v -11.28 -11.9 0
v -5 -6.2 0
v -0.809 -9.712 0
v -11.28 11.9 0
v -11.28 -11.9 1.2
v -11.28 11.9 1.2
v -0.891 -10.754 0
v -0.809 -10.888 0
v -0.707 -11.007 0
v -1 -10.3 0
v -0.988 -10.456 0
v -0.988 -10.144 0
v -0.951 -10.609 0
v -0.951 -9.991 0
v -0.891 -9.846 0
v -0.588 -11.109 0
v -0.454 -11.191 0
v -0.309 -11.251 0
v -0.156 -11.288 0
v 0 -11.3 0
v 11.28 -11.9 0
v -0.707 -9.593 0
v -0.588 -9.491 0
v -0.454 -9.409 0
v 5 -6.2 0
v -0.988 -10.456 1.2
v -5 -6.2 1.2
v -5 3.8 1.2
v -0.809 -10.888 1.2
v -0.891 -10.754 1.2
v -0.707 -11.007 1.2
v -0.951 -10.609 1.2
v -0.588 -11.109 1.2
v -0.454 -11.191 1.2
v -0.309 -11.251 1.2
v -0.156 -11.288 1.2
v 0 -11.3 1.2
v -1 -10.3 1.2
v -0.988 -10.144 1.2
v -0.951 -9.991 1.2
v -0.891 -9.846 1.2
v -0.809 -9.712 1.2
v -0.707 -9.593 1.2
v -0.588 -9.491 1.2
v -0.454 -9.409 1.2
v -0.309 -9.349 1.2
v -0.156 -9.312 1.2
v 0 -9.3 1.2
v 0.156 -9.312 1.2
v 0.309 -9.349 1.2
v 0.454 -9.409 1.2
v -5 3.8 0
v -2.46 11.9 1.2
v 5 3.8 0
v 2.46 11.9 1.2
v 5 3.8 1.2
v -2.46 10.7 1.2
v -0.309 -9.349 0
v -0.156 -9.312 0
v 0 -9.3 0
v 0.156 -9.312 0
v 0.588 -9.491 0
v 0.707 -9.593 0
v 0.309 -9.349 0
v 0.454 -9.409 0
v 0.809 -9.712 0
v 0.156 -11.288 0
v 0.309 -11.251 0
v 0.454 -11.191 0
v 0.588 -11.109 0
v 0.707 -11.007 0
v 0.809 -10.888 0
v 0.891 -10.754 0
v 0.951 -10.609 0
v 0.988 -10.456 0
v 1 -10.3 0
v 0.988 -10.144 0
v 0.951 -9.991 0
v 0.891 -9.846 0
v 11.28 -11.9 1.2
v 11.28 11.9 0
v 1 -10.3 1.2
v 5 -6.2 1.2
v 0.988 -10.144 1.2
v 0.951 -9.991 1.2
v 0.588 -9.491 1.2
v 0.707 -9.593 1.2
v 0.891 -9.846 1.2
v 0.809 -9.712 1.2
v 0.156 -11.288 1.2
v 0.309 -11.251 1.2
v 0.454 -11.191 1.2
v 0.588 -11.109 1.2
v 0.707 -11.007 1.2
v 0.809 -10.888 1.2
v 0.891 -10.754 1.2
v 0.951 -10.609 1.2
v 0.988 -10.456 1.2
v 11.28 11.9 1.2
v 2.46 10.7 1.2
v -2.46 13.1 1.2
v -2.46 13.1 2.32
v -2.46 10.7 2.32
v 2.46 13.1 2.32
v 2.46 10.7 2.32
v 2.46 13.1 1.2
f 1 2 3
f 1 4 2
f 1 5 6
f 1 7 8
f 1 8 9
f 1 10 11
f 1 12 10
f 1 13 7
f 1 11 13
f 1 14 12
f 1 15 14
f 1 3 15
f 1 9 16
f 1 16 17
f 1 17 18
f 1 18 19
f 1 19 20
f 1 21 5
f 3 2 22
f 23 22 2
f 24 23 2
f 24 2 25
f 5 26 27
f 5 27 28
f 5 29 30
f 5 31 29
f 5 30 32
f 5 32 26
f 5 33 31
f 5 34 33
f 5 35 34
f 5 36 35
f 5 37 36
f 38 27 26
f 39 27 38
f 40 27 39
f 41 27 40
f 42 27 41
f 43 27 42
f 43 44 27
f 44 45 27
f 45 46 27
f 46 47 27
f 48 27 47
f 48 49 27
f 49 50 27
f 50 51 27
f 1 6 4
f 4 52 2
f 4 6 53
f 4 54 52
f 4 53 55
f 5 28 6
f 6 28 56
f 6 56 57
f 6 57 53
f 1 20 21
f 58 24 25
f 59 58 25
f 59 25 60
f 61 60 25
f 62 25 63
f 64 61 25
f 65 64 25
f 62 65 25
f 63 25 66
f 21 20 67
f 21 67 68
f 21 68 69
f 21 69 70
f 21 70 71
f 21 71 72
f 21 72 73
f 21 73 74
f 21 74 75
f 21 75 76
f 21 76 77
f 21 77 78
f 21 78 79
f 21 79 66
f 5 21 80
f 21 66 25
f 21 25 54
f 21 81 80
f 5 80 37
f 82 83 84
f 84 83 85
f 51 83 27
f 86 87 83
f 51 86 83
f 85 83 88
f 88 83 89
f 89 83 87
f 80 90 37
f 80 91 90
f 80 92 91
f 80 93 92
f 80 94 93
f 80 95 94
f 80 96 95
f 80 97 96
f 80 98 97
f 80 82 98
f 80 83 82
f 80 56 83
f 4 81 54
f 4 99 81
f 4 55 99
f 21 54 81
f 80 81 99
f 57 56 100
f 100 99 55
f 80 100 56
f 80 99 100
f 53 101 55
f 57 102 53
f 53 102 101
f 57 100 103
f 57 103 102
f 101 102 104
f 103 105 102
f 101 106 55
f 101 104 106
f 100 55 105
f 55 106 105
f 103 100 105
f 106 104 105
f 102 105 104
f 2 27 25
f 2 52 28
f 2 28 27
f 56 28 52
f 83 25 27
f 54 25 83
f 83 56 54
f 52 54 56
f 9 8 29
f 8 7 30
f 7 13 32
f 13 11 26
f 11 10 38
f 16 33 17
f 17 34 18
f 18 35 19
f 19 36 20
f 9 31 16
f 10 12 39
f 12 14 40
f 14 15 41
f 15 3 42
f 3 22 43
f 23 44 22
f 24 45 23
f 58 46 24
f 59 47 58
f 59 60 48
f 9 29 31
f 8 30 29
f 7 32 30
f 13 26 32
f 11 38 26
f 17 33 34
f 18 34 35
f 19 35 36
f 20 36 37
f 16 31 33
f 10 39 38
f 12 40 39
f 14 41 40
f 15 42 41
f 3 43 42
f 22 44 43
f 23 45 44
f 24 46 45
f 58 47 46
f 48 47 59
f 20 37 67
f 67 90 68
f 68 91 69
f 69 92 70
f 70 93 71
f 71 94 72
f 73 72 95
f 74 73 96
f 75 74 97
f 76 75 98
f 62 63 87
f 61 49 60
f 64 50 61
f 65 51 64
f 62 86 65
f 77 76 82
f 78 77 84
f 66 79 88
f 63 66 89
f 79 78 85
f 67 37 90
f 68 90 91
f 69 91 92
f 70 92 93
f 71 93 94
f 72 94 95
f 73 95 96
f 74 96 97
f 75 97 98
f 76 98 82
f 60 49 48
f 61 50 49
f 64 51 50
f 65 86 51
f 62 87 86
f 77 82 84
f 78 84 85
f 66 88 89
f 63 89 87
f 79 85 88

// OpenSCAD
// ============================================================
// 하우징 ERM v2 - housing_erm_closure2_v2 (별도 부품)
// ============================================================

module housing_erm_closure2_v2() {
    plate_w = 22.56; // 가로
    plate_h = 23.8;  // 세로 (25 -> 1.2mm 감소)
    plate_t = 1.2;   // 판재 두께

    sq_size = 10;  // 뚫린 정사각형 한 변
    sq_y    = -1.2; // 정사각형 중심 Y좌표 (판재 중심에서 1.2mm 아래로 이동)

    // 돌출 탭: housing_erm_closure1_v2와 동일한 구조.
    // 가로 4.92mm. 세로(Y)는 +Y쪽 가장자리 기준 면 위에 1.2mm 걸치고(overlap)
    // 바깥으로 1.2mm 튀어나옴(protrude) = 총 2.4mm. 판재 위에 tab_z만큼 돌출.
    tab_w        = 4.92; // 가로 (4.96 -> 4.92)
    tab_protrude = 1.2;  // 3D 기준 +Y 방향으로 면 바깥으로 튀어나오는 길이
    tab_overlap  = 1.2;  // 면 위에 걸쳐있는 길이 (+Y쪽 가장자리에서 안쪽으로)
    tab_len      = tab_protrude + tab_overlap; // 세로 전체 길이 (2.4mm)
    tab_z        = 1.12; // 돌출부가 판재 위로 추가로 튀어나오는 두께(높이) (1.16 -> 1.12)

    // 나사 구멍: 정사각형 중심(=판재 중심)에서 Y축 음수 방향으로 10.3mm 떨어진 위치.
    // 보스 없이 Z축 방향(판재를 관통)으로 뚫림.
    screw_d = 2;
    screw_y = -10.3;

    echo("[Closure2] sq_y =", sq_y);
    echo("[Closure2] tab_w =", tab_w, " tab_len =", tab_len, " tab_z =", tab_z);
    echo("[Closure2] screw_y =", screw_y);

    difference() {
        union() {
            // 메인 평판
            color("gray")
                linear_extrude(height = plate_t)
                    square([plate_w, plate_h], center = true);

            // 윗변 돌출 탭 (실제 3D, 판재 위에 Z 깊이 tab_z 추가), 윗변 바깥쪽으로 튀어나옴.
            color("SteelBlue")
                translate([0, plate_h / 2 - tab_overlap + tab_len / 2, plate_t])
                    linear_extrude(height = tab_z)
                        square([tab_w, tab_len], center = true);
        }

        // 10x10 정사각형 관통 구멍 (판재 중심에서 Y축 음수 방향으로 1.2mm 이동)
        linear_extrude(height = plate_t + 0.2)
            translate([0, sq_y, -0.1])
                square([sq_size, sq_size], center = true);

        // 나사 구멍 (Z방향 관통), 정사각형 중심에서 Y축 음수방향 10.3mm
        translate([0, screw_y, -0.1])
            cylinder(d = screw_d, h = plate_t + 0.2, $fn = 40);
    }
}

housing_erm_closure2_v2();
